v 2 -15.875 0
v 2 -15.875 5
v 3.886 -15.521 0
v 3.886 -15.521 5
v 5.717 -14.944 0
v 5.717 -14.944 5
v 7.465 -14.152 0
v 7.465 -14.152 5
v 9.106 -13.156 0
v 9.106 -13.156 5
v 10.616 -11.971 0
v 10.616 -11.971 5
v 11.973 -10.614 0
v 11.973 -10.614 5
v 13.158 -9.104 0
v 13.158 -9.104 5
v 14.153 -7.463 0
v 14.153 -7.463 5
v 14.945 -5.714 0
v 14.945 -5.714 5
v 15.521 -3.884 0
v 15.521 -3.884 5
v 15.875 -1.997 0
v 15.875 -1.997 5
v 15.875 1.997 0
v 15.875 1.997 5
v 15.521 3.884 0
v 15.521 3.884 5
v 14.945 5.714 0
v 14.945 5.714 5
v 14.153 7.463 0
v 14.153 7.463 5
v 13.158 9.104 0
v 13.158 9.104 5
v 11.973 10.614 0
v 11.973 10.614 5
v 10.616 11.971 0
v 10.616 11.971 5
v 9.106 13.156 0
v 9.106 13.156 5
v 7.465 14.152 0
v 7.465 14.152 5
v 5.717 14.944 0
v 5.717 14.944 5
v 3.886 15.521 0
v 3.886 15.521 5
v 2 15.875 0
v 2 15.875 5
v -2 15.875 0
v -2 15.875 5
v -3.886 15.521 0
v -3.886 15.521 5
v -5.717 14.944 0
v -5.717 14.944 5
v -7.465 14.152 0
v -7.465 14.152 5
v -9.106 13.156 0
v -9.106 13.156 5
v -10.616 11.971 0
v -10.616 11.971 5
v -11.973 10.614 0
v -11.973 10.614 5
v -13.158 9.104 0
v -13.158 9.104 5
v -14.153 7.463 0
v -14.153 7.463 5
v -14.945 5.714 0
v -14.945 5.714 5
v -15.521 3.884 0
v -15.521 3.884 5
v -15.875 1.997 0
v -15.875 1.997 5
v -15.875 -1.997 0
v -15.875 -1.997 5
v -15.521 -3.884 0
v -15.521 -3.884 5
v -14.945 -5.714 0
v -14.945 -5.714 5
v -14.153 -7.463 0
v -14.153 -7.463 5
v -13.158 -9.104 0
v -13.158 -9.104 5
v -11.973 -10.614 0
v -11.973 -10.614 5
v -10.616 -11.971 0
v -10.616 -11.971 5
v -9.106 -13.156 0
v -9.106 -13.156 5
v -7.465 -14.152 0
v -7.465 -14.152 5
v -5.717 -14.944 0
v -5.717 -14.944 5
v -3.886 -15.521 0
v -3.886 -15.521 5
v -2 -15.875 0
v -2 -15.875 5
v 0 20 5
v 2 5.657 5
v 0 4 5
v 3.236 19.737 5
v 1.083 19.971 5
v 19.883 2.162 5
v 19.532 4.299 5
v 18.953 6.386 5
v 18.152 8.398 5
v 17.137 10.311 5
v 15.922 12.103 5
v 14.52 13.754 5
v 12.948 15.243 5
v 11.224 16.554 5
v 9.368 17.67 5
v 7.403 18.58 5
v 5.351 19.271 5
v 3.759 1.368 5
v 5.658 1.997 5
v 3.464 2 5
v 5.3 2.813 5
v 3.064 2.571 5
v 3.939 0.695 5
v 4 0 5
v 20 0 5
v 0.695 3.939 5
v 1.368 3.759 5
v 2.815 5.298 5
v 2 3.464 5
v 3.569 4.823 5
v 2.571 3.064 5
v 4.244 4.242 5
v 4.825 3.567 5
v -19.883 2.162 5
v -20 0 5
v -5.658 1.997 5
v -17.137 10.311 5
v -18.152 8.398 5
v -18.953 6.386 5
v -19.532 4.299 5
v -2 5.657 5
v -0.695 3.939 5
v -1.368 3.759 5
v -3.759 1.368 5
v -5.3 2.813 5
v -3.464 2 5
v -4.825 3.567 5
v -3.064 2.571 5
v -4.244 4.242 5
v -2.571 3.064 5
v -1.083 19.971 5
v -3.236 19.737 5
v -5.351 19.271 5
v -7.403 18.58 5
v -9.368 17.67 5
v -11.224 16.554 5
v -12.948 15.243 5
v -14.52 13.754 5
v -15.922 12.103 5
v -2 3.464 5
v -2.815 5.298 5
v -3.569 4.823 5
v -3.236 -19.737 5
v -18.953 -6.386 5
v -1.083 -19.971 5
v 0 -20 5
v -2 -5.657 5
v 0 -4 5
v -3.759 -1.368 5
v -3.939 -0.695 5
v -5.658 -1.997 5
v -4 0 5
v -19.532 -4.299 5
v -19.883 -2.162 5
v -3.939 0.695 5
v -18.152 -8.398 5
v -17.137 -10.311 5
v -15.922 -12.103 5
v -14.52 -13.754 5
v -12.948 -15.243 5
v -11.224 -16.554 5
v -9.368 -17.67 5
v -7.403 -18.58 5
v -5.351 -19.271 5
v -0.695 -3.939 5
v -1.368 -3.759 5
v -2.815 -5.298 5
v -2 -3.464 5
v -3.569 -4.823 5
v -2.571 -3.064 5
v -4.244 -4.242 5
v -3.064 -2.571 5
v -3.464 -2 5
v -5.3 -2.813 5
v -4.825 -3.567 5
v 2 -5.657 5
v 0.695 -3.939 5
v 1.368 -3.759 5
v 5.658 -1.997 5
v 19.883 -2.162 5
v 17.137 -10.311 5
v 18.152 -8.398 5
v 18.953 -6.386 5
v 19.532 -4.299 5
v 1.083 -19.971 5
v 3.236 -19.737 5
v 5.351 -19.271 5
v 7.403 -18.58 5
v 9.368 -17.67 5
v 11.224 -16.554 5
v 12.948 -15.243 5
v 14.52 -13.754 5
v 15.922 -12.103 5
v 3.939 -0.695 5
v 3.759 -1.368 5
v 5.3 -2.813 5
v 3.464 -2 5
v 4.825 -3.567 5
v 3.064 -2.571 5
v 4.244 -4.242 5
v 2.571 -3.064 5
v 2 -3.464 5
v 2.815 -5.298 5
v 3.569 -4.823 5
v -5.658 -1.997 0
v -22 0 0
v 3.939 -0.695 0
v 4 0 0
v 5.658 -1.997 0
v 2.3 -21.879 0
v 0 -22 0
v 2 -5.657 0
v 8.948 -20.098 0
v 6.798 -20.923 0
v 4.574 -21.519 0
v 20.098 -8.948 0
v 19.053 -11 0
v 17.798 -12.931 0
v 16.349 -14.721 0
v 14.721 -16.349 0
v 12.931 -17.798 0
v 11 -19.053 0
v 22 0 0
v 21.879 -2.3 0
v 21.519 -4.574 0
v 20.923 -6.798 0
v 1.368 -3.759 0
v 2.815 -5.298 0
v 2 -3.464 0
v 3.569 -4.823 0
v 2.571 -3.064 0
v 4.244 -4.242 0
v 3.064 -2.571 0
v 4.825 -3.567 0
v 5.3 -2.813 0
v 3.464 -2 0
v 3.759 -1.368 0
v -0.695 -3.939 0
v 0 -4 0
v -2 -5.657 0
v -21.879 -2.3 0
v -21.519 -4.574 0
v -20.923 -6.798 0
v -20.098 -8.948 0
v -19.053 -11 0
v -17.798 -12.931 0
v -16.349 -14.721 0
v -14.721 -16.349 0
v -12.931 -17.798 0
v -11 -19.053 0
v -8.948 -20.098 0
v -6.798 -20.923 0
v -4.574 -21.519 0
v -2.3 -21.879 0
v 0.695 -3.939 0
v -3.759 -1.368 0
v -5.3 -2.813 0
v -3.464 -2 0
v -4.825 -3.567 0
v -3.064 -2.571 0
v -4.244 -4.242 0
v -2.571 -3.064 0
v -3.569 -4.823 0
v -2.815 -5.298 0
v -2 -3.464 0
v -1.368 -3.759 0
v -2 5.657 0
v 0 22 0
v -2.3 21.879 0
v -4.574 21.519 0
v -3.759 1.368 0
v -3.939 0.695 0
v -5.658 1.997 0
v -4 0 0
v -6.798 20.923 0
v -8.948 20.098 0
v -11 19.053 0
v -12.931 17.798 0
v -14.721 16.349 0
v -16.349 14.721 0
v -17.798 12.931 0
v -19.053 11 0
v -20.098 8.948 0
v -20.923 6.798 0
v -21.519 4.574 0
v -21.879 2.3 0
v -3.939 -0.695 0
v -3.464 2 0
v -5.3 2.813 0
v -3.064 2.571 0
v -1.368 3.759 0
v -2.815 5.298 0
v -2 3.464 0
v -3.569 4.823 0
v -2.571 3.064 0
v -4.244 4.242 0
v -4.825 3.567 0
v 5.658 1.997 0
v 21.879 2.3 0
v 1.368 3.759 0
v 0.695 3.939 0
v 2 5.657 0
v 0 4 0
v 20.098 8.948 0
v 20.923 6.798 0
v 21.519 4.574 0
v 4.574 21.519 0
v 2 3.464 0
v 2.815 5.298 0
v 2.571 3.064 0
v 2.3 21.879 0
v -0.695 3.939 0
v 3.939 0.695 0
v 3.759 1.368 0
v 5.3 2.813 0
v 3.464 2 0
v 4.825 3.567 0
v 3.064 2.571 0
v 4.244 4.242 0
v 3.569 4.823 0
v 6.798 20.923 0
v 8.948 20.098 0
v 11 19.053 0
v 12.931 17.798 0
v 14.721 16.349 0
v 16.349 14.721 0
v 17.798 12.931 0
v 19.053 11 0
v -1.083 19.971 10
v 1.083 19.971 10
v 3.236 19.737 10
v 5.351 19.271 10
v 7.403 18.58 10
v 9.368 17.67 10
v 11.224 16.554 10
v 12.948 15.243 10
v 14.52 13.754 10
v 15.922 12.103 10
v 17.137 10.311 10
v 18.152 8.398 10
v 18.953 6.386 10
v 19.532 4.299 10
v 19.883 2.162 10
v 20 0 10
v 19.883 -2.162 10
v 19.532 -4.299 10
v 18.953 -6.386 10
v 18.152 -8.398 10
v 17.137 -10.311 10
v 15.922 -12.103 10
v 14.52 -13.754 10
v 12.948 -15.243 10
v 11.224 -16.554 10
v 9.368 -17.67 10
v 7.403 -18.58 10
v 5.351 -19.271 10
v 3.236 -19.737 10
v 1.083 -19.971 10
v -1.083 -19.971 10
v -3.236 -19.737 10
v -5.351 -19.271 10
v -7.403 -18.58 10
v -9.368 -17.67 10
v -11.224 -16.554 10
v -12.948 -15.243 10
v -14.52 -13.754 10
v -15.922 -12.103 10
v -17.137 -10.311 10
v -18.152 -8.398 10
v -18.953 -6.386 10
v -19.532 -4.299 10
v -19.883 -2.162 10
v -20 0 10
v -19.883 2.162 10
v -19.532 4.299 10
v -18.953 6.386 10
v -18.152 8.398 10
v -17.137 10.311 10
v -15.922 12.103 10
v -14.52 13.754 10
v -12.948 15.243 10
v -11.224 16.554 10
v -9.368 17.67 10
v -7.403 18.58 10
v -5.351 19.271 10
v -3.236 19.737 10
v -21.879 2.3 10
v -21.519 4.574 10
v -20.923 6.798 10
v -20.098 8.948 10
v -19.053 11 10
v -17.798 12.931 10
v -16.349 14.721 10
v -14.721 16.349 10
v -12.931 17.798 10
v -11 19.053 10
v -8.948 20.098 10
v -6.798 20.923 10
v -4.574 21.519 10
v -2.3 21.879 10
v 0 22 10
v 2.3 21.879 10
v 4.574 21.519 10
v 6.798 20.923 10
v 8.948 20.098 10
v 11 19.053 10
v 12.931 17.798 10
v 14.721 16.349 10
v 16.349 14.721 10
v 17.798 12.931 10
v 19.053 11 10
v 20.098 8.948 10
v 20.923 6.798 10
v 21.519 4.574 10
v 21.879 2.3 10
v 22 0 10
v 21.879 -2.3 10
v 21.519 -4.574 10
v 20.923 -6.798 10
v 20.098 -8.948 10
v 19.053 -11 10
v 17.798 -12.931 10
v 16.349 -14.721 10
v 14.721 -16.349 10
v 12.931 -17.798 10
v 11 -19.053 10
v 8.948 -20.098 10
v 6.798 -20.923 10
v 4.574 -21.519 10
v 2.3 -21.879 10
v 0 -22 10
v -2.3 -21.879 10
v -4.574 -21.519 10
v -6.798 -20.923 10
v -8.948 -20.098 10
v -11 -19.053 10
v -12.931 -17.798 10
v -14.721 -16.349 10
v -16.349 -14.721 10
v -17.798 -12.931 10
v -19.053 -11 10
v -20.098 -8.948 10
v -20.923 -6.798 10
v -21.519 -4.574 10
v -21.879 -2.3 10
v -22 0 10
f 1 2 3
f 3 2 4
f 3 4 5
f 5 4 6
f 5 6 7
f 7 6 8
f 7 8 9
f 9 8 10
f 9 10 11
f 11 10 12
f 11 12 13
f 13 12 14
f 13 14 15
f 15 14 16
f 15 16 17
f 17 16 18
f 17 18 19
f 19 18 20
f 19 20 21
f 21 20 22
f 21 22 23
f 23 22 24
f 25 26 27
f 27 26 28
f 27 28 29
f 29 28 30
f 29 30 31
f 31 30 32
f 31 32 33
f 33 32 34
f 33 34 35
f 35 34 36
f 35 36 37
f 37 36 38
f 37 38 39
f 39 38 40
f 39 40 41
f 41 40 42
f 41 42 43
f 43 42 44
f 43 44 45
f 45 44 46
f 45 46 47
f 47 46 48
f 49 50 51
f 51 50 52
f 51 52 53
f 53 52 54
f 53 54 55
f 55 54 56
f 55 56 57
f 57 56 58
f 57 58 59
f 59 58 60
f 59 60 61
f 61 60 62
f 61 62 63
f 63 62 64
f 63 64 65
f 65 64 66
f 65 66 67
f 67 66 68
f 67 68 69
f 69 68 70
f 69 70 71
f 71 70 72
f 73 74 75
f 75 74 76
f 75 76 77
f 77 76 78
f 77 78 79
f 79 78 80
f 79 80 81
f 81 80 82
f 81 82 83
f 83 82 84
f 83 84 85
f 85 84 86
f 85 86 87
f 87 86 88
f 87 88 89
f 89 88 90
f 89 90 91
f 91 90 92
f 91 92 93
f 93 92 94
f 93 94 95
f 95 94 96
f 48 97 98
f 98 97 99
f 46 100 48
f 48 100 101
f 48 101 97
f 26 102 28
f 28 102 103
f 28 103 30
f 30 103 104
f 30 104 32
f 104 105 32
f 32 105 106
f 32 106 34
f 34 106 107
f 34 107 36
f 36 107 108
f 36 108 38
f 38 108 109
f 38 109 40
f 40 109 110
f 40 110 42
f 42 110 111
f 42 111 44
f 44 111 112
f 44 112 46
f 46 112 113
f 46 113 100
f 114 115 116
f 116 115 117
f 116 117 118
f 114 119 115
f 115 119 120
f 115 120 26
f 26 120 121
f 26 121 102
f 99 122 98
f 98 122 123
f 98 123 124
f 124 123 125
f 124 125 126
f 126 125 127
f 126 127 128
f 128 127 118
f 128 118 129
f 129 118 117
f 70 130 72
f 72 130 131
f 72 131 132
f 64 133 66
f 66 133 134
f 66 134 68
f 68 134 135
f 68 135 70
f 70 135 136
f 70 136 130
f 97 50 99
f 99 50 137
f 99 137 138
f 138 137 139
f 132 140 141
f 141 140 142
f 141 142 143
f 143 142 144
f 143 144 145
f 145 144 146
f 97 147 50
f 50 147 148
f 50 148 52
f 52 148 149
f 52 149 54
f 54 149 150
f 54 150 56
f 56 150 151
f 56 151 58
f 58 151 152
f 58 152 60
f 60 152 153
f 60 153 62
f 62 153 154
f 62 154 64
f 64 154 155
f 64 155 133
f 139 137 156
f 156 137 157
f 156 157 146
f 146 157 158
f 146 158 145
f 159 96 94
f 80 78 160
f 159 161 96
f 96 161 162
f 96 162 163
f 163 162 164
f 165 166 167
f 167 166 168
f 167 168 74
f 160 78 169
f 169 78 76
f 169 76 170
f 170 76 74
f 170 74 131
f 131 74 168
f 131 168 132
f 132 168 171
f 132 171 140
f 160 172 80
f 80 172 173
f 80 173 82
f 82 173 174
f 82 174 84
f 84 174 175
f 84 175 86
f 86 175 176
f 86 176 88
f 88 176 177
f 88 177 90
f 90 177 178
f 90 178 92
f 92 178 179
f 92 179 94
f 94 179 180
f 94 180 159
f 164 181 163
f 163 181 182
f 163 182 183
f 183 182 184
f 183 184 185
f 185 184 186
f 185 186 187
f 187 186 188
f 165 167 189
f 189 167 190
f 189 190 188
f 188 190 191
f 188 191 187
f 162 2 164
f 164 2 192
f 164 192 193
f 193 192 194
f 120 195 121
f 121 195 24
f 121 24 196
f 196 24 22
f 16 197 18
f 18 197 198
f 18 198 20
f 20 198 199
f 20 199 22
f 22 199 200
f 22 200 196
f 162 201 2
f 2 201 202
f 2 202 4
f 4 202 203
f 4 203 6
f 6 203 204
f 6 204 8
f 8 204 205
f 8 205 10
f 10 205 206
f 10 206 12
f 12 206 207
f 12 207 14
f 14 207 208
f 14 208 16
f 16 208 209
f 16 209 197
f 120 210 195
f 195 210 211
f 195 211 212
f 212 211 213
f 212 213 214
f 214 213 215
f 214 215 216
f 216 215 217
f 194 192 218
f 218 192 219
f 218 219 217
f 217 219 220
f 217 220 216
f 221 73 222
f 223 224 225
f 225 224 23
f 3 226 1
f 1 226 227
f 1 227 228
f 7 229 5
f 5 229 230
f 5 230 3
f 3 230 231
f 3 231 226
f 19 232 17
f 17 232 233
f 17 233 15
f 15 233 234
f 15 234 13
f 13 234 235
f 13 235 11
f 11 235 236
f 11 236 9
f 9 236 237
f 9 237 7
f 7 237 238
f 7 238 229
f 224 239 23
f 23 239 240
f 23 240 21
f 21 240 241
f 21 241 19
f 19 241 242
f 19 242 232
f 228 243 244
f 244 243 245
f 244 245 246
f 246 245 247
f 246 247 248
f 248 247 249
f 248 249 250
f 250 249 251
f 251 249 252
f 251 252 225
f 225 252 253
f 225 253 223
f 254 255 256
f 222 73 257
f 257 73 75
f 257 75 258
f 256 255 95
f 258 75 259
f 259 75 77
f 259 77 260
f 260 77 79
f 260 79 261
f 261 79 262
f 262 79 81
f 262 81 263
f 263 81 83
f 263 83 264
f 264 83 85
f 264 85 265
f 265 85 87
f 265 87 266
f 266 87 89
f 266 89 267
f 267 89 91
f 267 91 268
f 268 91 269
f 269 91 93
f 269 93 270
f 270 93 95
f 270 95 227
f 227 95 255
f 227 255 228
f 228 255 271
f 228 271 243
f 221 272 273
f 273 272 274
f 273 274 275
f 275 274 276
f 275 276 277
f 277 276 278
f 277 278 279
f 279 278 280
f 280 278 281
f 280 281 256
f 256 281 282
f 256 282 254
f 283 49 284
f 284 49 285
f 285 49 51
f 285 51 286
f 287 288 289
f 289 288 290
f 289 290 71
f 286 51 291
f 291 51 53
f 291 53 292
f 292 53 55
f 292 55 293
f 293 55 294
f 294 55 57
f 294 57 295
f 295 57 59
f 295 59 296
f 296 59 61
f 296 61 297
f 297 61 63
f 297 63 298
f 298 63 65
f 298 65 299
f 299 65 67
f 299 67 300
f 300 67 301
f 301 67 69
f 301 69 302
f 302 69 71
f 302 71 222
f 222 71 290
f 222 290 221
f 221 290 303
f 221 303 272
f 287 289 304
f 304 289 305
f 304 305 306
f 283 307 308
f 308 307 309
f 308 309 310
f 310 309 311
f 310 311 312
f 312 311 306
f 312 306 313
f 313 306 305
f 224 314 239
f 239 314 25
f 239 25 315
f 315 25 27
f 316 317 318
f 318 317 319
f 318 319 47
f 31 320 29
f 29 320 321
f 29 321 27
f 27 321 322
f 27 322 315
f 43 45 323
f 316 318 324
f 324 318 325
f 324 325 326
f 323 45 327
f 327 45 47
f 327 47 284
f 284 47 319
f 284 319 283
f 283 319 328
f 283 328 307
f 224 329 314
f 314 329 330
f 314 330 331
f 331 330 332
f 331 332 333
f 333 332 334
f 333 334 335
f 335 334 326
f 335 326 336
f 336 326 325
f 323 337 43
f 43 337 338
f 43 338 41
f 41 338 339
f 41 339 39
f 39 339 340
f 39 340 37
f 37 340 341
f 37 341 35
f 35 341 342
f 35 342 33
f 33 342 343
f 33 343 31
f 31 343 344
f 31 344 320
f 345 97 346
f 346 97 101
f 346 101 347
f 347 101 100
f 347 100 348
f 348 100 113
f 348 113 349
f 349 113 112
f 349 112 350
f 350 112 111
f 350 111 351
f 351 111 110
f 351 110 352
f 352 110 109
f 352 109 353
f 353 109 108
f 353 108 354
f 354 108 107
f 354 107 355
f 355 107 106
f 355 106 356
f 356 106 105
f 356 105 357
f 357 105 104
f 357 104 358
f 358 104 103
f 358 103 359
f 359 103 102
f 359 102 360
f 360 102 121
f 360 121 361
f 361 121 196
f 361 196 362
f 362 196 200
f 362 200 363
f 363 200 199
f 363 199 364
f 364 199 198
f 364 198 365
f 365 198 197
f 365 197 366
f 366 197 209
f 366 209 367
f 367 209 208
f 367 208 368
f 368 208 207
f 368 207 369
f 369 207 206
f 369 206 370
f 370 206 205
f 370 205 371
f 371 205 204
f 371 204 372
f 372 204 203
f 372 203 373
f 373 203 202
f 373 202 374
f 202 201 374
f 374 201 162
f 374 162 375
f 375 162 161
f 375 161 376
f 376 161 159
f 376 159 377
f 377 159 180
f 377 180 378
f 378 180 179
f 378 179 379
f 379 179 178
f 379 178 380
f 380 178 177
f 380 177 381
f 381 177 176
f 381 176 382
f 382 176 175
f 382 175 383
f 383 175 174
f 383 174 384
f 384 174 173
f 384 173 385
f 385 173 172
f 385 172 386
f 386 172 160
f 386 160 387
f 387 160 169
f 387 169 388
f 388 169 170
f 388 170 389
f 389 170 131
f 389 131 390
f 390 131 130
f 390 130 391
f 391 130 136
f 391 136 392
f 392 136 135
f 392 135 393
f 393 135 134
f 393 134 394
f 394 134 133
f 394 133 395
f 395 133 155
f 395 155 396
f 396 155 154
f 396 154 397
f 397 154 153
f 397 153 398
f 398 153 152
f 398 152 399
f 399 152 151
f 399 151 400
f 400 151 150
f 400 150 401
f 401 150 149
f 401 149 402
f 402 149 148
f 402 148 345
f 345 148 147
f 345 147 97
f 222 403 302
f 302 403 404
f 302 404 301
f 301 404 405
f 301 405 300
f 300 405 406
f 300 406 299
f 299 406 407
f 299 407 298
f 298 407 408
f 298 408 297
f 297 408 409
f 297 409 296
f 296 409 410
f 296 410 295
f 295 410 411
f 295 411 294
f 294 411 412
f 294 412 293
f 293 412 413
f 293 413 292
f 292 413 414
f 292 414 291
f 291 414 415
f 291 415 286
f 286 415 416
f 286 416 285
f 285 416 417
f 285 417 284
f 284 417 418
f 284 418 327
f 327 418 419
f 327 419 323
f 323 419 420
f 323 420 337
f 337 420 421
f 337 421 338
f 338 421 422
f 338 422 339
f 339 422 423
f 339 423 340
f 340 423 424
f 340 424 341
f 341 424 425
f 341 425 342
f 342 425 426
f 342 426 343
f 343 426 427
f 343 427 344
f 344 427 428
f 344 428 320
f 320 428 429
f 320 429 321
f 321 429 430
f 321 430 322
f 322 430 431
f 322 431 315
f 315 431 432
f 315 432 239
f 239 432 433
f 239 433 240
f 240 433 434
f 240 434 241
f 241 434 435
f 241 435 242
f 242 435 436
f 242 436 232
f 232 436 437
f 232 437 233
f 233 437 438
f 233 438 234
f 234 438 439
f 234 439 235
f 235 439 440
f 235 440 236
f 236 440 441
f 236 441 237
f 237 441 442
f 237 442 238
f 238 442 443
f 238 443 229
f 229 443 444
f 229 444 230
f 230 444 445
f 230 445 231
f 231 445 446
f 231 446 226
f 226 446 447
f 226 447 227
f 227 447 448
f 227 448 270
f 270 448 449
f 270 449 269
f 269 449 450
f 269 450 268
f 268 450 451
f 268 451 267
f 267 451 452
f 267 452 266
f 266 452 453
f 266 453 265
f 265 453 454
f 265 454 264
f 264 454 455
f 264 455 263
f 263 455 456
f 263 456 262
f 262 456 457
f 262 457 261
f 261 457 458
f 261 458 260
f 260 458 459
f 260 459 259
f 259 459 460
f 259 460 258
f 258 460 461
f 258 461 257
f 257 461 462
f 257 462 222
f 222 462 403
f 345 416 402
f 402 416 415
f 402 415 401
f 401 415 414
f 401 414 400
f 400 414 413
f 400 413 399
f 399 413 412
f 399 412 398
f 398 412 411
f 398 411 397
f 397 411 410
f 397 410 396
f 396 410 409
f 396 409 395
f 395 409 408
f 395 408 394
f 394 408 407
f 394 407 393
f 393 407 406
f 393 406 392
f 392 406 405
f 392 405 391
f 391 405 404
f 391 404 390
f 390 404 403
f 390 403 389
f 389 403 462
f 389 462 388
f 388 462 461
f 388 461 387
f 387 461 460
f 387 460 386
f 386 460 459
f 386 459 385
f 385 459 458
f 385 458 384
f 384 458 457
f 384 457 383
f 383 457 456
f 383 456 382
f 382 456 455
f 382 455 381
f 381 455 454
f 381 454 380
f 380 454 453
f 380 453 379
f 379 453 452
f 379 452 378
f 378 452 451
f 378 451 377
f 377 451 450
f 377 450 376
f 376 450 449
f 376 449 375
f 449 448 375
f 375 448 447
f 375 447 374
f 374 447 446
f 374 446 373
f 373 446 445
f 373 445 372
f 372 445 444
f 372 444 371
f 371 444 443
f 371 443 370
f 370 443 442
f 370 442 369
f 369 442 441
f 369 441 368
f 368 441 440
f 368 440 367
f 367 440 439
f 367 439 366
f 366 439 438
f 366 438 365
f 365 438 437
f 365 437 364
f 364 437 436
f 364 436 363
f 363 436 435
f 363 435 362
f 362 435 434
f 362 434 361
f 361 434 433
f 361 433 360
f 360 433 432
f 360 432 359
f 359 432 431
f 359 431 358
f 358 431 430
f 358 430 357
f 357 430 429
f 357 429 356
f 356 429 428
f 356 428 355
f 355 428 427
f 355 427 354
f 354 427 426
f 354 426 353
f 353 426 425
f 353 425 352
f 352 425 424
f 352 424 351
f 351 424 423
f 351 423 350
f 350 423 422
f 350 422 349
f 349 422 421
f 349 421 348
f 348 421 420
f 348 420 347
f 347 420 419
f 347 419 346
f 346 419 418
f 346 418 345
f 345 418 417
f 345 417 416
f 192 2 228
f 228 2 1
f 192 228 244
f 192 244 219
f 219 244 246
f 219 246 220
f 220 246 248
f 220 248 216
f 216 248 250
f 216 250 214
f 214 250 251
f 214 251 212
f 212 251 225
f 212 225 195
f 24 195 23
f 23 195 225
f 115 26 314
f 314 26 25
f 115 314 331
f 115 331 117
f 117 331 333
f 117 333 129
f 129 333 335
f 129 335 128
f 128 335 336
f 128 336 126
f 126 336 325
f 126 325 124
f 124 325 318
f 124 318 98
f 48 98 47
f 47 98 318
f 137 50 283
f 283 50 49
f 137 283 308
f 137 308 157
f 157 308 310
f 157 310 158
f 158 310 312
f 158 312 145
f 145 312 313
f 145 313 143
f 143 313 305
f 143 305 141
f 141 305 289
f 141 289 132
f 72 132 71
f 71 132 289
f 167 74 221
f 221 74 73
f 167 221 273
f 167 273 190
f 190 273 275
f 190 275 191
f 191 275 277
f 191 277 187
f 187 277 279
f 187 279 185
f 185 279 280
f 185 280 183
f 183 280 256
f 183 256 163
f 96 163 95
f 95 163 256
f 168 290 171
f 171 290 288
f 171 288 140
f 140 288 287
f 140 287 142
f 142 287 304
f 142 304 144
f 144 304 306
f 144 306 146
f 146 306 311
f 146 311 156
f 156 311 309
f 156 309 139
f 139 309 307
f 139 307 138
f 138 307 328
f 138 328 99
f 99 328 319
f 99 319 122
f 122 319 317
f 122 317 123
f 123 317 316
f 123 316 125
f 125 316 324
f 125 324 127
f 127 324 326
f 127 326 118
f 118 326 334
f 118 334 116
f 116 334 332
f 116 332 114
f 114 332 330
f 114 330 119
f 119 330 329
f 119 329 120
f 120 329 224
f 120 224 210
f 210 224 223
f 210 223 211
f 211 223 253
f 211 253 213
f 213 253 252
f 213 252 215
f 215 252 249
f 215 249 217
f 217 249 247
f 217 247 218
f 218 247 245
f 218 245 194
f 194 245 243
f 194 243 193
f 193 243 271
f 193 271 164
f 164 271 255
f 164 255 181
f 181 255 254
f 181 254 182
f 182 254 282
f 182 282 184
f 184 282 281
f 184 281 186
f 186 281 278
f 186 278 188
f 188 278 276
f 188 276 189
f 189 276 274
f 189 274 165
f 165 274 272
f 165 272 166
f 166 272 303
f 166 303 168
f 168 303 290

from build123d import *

# Parameters (mm, degrees)
ESBO_O1_R                = 20
ESBO_O1_R_2              = 4
RESSALTO_EXTRUS_O3_DEPTH = 5
ESBO_O1_6_R              = 22
ESBO_O1_6_R_2            = 20
RESSALTO_EXTRUS_O4_DEPTH = 10
ESBO_O1_7_R              = 4
RESSALTO_EXTRUS_O5_DEPTH = 2
ESBO_O2_R                = 16
CORTE_EXTRUS_O1_DEPTH    = 60
RESSALTO_EXTRUS_O6_START = 5
ESBO_O3_R                = 4
RESSALTO_EXTRUS_O6_DEPTH = 5


with BuildPart() as part:
    # Esboço1 → Ressalto-extrusão3 (new body)
    with BuildSketch(Plane.XY):
        Circle(ESBO_O1_R)
        Circle(ESBO_O1_R_2, mode=Mode.SUBTRACT)
    extrude(amount=RESSALTO_EXTRUS_O3_DEPTH)

    # Esboço1<6> → Ressalto-extrusão4 (add)
    with BuildSketch(Plane.XY):
        Circle(ESBO_O1_6_R)
        Circle(ESBO_O1_6_R_2, mode=Mode.SUBTRACT)
    extrude(amount=RESSALTO_EXTRUS_O4_DEPTH)

    # Esboço1<7> → Ressalto-extrusão5 (add)
    with BuildSketch(Plane.XY):
        Circle(ESBO_O1_7_R)
    extrude(amount=RESSALTO_EXTRUS_O5_DEPTH)

    # Esboço2 → Corte-extrusão1 (cut)
    with BuildSketch(Plane.XY.offset(5)):
        Circle(ESBO_O2_R)
    extrude(amount=-CORTE_EXTRUS_O1_DEPTH, mode=Mode.SUBTRACT)

    # Esboço3 → Ressalto-extrusão6 (add)
    with BuildSketch(Plane.XY.offset(RESSALTO_EXTRUS_O6_START)):
        with BuildLine():
            Line((2, -15.874507866), (2, -5.656854249))
            ThreePointArc((2, -5.656854249), (4.243647898, -4.241633237), (5.657803332, -1.997313561))
            Line((5.657803332, -1.997313561), (15.874846095, -1.997313561))
            ThreePointArc((15.874846095, -1.997313561), (16, 0), (15.874846095, 1.997313561))
            Line((15.874846095, 1.997313561), (5.657803332, 1.997313561))
            ThreePointArc((5.657803332, 1.997313561), (4.243647898, 4.241633237), (2, 5.656854249))
            Line((2, 5.656854249), (2, 15.874507866))
            ThreePointArc((2, 15.874507866), (0, 16), (-2, 15.874507866))
            Line((-2, 15.874507866), (-2, 5.656854249))
            ThreePointArc((-2, 5.656854249), (-4.243647898, 4.241633237), (-5.657803332, 1.997313561))
            Line((-5.657803332, 1.997313561), (-15.874846095, 1.997313561))
            ThreePointArc((-15.874846095, 1.997313561), (-16, 0), (-15.874846095, -1.997313561))
            Line((-15.874846095, -1.997313561), (-5.657803332, -1.997313561))
            ThreePointArc((-5.657803332, -1.997313561), (-4.243647898, -4.241633237), (-2, -5.656854249))
            Line((-2, -5.656854249), (-2, -15.874507866))
            ThreePointArc((-2, -15.874507866), (0, -16), (2, -15.874507866))
        make_face()
        Circle(ESBO_O3_R, mode=Mode.SUBTRACT)
    extrude(amount=-RESSALTO_EXTRUS_O6_DEPTH)


solid = part.part
